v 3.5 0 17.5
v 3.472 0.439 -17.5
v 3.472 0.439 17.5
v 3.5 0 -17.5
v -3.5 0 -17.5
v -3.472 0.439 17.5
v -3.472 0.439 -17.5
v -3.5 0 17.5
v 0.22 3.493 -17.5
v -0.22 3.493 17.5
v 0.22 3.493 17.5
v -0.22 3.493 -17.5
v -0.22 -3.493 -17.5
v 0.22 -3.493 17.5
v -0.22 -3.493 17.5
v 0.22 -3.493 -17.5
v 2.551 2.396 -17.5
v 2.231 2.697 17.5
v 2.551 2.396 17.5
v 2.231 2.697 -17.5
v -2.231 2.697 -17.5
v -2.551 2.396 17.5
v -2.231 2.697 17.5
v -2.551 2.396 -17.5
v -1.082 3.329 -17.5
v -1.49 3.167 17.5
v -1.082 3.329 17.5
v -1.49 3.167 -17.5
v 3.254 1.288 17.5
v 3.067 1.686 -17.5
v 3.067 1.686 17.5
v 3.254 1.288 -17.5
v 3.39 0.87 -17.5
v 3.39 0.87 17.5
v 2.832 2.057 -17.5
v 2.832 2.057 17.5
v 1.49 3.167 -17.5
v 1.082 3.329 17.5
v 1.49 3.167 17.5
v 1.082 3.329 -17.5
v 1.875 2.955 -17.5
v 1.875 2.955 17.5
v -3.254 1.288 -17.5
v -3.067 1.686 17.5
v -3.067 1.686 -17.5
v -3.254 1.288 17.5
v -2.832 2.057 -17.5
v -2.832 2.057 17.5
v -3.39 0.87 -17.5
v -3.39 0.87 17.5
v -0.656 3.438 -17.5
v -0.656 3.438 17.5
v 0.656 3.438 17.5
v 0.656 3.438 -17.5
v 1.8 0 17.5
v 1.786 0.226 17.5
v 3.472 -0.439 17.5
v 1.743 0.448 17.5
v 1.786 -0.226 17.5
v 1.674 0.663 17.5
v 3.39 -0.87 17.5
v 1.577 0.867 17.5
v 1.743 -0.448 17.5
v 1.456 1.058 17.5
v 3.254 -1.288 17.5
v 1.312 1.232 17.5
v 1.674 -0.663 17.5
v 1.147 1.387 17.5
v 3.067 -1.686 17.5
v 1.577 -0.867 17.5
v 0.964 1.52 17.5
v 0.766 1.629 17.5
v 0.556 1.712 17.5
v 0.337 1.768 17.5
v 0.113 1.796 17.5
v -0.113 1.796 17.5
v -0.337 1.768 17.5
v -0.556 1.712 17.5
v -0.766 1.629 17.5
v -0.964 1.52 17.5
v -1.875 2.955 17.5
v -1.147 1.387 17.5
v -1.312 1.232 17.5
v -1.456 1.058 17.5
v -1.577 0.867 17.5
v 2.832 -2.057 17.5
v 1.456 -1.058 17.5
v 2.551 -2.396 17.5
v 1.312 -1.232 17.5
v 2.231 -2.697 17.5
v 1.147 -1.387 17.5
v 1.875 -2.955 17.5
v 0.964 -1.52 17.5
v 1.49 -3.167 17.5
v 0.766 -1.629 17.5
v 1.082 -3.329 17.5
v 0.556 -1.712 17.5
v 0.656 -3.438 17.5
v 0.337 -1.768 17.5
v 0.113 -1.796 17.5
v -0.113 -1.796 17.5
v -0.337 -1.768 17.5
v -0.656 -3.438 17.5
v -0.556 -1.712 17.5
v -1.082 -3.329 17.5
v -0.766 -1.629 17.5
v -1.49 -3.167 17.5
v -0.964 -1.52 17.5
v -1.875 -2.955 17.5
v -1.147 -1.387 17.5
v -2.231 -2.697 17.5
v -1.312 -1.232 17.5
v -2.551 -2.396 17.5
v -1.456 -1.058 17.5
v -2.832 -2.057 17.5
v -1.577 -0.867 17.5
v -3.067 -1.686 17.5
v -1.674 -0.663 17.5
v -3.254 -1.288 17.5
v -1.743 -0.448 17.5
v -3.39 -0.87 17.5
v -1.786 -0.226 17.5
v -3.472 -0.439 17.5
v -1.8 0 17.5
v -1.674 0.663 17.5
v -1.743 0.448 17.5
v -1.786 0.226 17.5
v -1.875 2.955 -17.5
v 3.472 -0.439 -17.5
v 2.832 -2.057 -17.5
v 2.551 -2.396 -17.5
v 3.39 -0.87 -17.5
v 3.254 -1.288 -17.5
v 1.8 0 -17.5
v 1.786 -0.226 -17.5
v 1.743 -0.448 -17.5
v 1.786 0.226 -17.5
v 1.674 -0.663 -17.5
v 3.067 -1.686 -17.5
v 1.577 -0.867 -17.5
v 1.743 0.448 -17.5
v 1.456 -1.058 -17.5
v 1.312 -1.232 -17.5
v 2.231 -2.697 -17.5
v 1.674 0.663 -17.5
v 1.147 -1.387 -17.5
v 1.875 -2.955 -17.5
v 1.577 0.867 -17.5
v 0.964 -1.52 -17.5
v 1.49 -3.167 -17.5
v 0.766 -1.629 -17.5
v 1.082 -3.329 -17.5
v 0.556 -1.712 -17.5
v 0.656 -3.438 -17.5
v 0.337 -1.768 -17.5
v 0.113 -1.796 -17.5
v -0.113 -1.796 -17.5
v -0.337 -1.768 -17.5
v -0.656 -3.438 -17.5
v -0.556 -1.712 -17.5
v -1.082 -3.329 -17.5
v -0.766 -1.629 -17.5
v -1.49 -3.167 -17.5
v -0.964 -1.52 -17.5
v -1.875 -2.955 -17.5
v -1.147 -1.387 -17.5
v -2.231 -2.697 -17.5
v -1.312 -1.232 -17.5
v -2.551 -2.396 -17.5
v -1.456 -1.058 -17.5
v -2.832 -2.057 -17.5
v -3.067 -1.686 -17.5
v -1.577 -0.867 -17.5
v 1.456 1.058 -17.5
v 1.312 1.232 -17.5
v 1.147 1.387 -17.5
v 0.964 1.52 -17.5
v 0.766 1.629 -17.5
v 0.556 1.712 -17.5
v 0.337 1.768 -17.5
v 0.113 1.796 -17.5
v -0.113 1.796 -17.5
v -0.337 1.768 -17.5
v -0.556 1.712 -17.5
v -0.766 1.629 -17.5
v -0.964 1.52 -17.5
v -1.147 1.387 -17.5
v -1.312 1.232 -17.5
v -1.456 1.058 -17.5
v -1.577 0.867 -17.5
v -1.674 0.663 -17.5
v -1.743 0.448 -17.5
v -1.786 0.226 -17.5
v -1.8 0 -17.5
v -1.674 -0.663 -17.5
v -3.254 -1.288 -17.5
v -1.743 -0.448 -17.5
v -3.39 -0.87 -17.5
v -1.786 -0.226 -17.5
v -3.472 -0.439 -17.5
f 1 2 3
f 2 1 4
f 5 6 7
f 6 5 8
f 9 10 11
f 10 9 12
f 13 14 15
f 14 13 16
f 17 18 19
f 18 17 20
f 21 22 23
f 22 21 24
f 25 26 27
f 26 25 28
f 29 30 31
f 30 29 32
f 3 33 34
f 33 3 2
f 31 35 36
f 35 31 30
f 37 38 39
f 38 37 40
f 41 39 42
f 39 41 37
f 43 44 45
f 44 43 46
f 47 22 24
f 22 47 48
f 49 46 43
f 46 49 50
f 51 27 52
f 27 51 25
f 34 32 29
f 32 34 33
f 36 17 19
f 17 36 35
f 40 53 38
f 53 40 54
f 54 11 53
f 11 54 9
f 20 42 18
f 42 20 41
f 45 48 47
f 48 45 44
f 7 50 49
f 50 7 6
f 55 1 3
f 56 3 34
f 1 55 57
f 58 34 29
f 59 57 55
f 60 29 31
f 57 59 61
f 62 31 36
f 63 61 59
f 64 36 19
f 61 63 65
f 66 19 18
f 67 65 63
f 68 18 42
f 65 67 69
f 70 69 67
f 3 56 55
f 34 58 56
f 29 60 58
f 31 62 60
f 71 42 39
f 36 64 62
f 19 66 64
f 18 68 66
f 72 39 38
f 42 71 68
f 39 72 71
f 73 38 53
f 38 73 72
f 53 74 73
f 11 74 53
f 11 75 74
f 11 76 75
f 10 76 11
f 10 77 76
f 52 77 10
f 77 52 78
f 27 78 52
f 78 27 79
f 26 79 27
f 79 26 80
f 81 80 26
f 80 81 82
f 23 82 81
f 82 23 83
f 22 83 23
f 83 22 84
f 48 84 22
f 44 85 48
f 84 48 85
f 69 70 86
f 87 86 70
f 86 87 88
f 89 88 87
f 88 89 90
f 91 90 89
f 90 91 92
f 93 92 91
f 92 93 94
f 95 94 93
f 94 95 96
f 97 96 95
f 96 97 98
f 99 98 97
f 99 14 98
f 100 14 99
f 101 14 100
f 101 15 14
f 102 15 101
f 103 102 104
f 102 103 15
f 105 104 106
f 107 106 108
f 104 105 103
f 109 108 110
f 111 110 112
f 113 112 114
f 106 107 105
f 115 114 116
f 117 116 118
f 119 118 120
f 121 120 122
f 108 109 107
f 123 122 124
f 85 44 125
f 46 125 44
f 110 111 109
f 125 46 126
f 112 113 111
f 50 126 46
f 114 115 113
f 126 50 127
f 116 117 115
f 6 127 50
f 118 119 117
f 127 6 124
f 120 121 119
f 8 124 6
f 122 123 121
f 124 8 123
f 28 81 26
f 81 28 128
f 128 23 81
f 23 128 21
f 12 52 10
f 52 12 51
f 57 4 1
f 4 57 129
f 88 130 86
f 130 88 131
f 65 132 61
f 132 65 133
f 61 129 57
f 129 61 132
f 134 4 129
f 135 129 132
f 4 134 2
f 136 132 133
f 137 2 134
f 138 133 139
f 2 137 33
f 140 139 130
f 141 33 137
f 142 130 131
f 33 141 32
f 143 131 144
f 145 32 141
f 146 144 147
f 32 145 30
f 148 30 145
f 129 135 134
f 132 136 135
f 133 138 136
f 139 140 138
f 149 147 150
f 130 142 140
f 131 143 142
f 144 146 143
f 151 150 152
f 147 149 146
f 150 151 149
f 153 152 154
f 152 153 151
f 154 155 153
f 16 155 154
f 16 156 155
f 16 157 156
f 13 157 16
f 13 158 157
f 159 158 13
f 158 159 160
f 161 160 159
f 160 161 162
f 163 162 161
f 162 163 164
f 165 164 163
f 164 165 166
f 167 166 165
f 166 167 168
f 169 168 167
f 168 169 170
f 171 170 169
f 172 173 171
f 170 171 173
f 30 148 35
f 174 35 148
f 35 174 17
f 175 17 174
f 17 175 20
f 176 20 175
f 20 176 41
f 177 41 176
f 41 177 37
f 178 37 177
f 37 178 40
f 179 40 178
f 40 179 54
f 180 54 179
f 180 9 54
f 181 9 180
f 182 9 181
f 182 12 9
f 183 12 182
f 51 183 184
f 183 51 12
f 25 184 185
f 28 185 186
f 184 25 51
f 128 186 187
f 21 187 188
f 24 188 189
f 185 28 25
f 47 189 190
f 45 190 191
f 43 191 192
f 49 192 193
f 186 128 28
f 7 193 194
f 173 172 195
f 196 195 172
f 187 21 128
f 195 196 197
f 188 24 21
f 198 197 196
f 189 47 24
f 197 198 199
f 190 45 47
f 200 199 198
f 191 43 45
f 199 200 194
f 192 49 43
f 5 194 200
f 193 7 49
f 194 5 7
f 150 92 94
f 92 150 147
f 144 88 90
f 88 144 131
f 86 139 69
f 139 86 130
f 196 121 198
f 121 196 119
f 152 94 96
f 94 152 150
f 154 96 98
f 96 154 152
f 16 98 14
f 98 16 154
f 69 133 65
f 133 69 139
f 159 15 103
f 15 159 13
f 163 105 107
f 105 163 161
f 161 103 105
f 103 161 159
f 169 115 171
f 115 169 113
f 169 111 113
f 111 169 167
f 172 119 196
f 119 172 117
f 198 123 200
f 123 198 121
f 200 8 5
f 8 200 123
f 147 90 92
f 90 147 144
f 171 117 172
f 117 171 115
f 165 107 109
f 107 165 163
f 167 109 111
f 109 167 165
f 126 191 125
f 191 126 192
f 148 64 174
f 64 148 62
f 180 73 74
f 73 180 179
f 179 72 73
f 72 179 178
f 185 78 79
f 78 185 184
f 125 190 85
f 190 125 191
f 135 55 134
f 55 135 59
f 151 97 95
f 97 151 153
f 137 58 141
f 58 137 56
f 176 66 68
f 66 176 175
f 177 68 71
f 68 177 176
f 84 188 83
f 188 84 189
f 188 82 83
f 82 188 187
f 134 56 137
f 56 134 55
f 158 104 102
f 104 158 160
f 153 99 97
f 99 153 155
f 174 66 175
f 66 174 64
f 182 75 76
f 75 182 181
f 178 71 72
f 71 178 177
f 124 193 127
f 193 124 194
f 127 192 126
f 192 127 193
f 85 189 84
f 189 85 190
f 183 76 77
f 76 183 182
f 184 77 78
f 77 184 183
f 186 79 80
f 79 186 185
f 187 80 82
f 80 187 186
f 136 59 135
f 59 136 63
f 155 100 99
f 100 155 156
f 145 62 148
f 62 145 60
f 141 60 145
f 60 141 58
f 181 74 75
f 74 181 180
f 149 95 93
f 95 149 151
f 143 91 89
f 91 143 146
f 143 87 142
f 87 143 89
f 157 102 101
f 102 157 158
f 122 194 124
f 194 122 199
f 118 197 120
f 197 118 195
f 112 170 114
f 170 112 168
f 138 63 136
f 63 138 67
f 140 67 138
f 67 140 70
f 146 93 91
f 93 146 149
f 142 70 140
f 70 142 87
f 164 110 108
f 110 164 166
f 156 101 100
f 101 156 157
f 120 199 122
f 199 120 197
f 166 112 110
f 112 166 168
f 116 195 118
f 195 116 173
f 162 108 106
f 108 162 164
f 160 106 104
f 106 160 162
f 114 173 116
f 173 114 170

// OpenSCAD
$fn = 50;


difference() {
	union() {
		translate(v = [0, 0, -17.5000000000]) {
			cylinder(h = 35, r = 3.5000000000);
		}
	}
	union() {
		translate(v = [0, 0, -100.0000000000]) {
			cylinder(h = 200, r = 1.8000000000);
		}
	}
}
